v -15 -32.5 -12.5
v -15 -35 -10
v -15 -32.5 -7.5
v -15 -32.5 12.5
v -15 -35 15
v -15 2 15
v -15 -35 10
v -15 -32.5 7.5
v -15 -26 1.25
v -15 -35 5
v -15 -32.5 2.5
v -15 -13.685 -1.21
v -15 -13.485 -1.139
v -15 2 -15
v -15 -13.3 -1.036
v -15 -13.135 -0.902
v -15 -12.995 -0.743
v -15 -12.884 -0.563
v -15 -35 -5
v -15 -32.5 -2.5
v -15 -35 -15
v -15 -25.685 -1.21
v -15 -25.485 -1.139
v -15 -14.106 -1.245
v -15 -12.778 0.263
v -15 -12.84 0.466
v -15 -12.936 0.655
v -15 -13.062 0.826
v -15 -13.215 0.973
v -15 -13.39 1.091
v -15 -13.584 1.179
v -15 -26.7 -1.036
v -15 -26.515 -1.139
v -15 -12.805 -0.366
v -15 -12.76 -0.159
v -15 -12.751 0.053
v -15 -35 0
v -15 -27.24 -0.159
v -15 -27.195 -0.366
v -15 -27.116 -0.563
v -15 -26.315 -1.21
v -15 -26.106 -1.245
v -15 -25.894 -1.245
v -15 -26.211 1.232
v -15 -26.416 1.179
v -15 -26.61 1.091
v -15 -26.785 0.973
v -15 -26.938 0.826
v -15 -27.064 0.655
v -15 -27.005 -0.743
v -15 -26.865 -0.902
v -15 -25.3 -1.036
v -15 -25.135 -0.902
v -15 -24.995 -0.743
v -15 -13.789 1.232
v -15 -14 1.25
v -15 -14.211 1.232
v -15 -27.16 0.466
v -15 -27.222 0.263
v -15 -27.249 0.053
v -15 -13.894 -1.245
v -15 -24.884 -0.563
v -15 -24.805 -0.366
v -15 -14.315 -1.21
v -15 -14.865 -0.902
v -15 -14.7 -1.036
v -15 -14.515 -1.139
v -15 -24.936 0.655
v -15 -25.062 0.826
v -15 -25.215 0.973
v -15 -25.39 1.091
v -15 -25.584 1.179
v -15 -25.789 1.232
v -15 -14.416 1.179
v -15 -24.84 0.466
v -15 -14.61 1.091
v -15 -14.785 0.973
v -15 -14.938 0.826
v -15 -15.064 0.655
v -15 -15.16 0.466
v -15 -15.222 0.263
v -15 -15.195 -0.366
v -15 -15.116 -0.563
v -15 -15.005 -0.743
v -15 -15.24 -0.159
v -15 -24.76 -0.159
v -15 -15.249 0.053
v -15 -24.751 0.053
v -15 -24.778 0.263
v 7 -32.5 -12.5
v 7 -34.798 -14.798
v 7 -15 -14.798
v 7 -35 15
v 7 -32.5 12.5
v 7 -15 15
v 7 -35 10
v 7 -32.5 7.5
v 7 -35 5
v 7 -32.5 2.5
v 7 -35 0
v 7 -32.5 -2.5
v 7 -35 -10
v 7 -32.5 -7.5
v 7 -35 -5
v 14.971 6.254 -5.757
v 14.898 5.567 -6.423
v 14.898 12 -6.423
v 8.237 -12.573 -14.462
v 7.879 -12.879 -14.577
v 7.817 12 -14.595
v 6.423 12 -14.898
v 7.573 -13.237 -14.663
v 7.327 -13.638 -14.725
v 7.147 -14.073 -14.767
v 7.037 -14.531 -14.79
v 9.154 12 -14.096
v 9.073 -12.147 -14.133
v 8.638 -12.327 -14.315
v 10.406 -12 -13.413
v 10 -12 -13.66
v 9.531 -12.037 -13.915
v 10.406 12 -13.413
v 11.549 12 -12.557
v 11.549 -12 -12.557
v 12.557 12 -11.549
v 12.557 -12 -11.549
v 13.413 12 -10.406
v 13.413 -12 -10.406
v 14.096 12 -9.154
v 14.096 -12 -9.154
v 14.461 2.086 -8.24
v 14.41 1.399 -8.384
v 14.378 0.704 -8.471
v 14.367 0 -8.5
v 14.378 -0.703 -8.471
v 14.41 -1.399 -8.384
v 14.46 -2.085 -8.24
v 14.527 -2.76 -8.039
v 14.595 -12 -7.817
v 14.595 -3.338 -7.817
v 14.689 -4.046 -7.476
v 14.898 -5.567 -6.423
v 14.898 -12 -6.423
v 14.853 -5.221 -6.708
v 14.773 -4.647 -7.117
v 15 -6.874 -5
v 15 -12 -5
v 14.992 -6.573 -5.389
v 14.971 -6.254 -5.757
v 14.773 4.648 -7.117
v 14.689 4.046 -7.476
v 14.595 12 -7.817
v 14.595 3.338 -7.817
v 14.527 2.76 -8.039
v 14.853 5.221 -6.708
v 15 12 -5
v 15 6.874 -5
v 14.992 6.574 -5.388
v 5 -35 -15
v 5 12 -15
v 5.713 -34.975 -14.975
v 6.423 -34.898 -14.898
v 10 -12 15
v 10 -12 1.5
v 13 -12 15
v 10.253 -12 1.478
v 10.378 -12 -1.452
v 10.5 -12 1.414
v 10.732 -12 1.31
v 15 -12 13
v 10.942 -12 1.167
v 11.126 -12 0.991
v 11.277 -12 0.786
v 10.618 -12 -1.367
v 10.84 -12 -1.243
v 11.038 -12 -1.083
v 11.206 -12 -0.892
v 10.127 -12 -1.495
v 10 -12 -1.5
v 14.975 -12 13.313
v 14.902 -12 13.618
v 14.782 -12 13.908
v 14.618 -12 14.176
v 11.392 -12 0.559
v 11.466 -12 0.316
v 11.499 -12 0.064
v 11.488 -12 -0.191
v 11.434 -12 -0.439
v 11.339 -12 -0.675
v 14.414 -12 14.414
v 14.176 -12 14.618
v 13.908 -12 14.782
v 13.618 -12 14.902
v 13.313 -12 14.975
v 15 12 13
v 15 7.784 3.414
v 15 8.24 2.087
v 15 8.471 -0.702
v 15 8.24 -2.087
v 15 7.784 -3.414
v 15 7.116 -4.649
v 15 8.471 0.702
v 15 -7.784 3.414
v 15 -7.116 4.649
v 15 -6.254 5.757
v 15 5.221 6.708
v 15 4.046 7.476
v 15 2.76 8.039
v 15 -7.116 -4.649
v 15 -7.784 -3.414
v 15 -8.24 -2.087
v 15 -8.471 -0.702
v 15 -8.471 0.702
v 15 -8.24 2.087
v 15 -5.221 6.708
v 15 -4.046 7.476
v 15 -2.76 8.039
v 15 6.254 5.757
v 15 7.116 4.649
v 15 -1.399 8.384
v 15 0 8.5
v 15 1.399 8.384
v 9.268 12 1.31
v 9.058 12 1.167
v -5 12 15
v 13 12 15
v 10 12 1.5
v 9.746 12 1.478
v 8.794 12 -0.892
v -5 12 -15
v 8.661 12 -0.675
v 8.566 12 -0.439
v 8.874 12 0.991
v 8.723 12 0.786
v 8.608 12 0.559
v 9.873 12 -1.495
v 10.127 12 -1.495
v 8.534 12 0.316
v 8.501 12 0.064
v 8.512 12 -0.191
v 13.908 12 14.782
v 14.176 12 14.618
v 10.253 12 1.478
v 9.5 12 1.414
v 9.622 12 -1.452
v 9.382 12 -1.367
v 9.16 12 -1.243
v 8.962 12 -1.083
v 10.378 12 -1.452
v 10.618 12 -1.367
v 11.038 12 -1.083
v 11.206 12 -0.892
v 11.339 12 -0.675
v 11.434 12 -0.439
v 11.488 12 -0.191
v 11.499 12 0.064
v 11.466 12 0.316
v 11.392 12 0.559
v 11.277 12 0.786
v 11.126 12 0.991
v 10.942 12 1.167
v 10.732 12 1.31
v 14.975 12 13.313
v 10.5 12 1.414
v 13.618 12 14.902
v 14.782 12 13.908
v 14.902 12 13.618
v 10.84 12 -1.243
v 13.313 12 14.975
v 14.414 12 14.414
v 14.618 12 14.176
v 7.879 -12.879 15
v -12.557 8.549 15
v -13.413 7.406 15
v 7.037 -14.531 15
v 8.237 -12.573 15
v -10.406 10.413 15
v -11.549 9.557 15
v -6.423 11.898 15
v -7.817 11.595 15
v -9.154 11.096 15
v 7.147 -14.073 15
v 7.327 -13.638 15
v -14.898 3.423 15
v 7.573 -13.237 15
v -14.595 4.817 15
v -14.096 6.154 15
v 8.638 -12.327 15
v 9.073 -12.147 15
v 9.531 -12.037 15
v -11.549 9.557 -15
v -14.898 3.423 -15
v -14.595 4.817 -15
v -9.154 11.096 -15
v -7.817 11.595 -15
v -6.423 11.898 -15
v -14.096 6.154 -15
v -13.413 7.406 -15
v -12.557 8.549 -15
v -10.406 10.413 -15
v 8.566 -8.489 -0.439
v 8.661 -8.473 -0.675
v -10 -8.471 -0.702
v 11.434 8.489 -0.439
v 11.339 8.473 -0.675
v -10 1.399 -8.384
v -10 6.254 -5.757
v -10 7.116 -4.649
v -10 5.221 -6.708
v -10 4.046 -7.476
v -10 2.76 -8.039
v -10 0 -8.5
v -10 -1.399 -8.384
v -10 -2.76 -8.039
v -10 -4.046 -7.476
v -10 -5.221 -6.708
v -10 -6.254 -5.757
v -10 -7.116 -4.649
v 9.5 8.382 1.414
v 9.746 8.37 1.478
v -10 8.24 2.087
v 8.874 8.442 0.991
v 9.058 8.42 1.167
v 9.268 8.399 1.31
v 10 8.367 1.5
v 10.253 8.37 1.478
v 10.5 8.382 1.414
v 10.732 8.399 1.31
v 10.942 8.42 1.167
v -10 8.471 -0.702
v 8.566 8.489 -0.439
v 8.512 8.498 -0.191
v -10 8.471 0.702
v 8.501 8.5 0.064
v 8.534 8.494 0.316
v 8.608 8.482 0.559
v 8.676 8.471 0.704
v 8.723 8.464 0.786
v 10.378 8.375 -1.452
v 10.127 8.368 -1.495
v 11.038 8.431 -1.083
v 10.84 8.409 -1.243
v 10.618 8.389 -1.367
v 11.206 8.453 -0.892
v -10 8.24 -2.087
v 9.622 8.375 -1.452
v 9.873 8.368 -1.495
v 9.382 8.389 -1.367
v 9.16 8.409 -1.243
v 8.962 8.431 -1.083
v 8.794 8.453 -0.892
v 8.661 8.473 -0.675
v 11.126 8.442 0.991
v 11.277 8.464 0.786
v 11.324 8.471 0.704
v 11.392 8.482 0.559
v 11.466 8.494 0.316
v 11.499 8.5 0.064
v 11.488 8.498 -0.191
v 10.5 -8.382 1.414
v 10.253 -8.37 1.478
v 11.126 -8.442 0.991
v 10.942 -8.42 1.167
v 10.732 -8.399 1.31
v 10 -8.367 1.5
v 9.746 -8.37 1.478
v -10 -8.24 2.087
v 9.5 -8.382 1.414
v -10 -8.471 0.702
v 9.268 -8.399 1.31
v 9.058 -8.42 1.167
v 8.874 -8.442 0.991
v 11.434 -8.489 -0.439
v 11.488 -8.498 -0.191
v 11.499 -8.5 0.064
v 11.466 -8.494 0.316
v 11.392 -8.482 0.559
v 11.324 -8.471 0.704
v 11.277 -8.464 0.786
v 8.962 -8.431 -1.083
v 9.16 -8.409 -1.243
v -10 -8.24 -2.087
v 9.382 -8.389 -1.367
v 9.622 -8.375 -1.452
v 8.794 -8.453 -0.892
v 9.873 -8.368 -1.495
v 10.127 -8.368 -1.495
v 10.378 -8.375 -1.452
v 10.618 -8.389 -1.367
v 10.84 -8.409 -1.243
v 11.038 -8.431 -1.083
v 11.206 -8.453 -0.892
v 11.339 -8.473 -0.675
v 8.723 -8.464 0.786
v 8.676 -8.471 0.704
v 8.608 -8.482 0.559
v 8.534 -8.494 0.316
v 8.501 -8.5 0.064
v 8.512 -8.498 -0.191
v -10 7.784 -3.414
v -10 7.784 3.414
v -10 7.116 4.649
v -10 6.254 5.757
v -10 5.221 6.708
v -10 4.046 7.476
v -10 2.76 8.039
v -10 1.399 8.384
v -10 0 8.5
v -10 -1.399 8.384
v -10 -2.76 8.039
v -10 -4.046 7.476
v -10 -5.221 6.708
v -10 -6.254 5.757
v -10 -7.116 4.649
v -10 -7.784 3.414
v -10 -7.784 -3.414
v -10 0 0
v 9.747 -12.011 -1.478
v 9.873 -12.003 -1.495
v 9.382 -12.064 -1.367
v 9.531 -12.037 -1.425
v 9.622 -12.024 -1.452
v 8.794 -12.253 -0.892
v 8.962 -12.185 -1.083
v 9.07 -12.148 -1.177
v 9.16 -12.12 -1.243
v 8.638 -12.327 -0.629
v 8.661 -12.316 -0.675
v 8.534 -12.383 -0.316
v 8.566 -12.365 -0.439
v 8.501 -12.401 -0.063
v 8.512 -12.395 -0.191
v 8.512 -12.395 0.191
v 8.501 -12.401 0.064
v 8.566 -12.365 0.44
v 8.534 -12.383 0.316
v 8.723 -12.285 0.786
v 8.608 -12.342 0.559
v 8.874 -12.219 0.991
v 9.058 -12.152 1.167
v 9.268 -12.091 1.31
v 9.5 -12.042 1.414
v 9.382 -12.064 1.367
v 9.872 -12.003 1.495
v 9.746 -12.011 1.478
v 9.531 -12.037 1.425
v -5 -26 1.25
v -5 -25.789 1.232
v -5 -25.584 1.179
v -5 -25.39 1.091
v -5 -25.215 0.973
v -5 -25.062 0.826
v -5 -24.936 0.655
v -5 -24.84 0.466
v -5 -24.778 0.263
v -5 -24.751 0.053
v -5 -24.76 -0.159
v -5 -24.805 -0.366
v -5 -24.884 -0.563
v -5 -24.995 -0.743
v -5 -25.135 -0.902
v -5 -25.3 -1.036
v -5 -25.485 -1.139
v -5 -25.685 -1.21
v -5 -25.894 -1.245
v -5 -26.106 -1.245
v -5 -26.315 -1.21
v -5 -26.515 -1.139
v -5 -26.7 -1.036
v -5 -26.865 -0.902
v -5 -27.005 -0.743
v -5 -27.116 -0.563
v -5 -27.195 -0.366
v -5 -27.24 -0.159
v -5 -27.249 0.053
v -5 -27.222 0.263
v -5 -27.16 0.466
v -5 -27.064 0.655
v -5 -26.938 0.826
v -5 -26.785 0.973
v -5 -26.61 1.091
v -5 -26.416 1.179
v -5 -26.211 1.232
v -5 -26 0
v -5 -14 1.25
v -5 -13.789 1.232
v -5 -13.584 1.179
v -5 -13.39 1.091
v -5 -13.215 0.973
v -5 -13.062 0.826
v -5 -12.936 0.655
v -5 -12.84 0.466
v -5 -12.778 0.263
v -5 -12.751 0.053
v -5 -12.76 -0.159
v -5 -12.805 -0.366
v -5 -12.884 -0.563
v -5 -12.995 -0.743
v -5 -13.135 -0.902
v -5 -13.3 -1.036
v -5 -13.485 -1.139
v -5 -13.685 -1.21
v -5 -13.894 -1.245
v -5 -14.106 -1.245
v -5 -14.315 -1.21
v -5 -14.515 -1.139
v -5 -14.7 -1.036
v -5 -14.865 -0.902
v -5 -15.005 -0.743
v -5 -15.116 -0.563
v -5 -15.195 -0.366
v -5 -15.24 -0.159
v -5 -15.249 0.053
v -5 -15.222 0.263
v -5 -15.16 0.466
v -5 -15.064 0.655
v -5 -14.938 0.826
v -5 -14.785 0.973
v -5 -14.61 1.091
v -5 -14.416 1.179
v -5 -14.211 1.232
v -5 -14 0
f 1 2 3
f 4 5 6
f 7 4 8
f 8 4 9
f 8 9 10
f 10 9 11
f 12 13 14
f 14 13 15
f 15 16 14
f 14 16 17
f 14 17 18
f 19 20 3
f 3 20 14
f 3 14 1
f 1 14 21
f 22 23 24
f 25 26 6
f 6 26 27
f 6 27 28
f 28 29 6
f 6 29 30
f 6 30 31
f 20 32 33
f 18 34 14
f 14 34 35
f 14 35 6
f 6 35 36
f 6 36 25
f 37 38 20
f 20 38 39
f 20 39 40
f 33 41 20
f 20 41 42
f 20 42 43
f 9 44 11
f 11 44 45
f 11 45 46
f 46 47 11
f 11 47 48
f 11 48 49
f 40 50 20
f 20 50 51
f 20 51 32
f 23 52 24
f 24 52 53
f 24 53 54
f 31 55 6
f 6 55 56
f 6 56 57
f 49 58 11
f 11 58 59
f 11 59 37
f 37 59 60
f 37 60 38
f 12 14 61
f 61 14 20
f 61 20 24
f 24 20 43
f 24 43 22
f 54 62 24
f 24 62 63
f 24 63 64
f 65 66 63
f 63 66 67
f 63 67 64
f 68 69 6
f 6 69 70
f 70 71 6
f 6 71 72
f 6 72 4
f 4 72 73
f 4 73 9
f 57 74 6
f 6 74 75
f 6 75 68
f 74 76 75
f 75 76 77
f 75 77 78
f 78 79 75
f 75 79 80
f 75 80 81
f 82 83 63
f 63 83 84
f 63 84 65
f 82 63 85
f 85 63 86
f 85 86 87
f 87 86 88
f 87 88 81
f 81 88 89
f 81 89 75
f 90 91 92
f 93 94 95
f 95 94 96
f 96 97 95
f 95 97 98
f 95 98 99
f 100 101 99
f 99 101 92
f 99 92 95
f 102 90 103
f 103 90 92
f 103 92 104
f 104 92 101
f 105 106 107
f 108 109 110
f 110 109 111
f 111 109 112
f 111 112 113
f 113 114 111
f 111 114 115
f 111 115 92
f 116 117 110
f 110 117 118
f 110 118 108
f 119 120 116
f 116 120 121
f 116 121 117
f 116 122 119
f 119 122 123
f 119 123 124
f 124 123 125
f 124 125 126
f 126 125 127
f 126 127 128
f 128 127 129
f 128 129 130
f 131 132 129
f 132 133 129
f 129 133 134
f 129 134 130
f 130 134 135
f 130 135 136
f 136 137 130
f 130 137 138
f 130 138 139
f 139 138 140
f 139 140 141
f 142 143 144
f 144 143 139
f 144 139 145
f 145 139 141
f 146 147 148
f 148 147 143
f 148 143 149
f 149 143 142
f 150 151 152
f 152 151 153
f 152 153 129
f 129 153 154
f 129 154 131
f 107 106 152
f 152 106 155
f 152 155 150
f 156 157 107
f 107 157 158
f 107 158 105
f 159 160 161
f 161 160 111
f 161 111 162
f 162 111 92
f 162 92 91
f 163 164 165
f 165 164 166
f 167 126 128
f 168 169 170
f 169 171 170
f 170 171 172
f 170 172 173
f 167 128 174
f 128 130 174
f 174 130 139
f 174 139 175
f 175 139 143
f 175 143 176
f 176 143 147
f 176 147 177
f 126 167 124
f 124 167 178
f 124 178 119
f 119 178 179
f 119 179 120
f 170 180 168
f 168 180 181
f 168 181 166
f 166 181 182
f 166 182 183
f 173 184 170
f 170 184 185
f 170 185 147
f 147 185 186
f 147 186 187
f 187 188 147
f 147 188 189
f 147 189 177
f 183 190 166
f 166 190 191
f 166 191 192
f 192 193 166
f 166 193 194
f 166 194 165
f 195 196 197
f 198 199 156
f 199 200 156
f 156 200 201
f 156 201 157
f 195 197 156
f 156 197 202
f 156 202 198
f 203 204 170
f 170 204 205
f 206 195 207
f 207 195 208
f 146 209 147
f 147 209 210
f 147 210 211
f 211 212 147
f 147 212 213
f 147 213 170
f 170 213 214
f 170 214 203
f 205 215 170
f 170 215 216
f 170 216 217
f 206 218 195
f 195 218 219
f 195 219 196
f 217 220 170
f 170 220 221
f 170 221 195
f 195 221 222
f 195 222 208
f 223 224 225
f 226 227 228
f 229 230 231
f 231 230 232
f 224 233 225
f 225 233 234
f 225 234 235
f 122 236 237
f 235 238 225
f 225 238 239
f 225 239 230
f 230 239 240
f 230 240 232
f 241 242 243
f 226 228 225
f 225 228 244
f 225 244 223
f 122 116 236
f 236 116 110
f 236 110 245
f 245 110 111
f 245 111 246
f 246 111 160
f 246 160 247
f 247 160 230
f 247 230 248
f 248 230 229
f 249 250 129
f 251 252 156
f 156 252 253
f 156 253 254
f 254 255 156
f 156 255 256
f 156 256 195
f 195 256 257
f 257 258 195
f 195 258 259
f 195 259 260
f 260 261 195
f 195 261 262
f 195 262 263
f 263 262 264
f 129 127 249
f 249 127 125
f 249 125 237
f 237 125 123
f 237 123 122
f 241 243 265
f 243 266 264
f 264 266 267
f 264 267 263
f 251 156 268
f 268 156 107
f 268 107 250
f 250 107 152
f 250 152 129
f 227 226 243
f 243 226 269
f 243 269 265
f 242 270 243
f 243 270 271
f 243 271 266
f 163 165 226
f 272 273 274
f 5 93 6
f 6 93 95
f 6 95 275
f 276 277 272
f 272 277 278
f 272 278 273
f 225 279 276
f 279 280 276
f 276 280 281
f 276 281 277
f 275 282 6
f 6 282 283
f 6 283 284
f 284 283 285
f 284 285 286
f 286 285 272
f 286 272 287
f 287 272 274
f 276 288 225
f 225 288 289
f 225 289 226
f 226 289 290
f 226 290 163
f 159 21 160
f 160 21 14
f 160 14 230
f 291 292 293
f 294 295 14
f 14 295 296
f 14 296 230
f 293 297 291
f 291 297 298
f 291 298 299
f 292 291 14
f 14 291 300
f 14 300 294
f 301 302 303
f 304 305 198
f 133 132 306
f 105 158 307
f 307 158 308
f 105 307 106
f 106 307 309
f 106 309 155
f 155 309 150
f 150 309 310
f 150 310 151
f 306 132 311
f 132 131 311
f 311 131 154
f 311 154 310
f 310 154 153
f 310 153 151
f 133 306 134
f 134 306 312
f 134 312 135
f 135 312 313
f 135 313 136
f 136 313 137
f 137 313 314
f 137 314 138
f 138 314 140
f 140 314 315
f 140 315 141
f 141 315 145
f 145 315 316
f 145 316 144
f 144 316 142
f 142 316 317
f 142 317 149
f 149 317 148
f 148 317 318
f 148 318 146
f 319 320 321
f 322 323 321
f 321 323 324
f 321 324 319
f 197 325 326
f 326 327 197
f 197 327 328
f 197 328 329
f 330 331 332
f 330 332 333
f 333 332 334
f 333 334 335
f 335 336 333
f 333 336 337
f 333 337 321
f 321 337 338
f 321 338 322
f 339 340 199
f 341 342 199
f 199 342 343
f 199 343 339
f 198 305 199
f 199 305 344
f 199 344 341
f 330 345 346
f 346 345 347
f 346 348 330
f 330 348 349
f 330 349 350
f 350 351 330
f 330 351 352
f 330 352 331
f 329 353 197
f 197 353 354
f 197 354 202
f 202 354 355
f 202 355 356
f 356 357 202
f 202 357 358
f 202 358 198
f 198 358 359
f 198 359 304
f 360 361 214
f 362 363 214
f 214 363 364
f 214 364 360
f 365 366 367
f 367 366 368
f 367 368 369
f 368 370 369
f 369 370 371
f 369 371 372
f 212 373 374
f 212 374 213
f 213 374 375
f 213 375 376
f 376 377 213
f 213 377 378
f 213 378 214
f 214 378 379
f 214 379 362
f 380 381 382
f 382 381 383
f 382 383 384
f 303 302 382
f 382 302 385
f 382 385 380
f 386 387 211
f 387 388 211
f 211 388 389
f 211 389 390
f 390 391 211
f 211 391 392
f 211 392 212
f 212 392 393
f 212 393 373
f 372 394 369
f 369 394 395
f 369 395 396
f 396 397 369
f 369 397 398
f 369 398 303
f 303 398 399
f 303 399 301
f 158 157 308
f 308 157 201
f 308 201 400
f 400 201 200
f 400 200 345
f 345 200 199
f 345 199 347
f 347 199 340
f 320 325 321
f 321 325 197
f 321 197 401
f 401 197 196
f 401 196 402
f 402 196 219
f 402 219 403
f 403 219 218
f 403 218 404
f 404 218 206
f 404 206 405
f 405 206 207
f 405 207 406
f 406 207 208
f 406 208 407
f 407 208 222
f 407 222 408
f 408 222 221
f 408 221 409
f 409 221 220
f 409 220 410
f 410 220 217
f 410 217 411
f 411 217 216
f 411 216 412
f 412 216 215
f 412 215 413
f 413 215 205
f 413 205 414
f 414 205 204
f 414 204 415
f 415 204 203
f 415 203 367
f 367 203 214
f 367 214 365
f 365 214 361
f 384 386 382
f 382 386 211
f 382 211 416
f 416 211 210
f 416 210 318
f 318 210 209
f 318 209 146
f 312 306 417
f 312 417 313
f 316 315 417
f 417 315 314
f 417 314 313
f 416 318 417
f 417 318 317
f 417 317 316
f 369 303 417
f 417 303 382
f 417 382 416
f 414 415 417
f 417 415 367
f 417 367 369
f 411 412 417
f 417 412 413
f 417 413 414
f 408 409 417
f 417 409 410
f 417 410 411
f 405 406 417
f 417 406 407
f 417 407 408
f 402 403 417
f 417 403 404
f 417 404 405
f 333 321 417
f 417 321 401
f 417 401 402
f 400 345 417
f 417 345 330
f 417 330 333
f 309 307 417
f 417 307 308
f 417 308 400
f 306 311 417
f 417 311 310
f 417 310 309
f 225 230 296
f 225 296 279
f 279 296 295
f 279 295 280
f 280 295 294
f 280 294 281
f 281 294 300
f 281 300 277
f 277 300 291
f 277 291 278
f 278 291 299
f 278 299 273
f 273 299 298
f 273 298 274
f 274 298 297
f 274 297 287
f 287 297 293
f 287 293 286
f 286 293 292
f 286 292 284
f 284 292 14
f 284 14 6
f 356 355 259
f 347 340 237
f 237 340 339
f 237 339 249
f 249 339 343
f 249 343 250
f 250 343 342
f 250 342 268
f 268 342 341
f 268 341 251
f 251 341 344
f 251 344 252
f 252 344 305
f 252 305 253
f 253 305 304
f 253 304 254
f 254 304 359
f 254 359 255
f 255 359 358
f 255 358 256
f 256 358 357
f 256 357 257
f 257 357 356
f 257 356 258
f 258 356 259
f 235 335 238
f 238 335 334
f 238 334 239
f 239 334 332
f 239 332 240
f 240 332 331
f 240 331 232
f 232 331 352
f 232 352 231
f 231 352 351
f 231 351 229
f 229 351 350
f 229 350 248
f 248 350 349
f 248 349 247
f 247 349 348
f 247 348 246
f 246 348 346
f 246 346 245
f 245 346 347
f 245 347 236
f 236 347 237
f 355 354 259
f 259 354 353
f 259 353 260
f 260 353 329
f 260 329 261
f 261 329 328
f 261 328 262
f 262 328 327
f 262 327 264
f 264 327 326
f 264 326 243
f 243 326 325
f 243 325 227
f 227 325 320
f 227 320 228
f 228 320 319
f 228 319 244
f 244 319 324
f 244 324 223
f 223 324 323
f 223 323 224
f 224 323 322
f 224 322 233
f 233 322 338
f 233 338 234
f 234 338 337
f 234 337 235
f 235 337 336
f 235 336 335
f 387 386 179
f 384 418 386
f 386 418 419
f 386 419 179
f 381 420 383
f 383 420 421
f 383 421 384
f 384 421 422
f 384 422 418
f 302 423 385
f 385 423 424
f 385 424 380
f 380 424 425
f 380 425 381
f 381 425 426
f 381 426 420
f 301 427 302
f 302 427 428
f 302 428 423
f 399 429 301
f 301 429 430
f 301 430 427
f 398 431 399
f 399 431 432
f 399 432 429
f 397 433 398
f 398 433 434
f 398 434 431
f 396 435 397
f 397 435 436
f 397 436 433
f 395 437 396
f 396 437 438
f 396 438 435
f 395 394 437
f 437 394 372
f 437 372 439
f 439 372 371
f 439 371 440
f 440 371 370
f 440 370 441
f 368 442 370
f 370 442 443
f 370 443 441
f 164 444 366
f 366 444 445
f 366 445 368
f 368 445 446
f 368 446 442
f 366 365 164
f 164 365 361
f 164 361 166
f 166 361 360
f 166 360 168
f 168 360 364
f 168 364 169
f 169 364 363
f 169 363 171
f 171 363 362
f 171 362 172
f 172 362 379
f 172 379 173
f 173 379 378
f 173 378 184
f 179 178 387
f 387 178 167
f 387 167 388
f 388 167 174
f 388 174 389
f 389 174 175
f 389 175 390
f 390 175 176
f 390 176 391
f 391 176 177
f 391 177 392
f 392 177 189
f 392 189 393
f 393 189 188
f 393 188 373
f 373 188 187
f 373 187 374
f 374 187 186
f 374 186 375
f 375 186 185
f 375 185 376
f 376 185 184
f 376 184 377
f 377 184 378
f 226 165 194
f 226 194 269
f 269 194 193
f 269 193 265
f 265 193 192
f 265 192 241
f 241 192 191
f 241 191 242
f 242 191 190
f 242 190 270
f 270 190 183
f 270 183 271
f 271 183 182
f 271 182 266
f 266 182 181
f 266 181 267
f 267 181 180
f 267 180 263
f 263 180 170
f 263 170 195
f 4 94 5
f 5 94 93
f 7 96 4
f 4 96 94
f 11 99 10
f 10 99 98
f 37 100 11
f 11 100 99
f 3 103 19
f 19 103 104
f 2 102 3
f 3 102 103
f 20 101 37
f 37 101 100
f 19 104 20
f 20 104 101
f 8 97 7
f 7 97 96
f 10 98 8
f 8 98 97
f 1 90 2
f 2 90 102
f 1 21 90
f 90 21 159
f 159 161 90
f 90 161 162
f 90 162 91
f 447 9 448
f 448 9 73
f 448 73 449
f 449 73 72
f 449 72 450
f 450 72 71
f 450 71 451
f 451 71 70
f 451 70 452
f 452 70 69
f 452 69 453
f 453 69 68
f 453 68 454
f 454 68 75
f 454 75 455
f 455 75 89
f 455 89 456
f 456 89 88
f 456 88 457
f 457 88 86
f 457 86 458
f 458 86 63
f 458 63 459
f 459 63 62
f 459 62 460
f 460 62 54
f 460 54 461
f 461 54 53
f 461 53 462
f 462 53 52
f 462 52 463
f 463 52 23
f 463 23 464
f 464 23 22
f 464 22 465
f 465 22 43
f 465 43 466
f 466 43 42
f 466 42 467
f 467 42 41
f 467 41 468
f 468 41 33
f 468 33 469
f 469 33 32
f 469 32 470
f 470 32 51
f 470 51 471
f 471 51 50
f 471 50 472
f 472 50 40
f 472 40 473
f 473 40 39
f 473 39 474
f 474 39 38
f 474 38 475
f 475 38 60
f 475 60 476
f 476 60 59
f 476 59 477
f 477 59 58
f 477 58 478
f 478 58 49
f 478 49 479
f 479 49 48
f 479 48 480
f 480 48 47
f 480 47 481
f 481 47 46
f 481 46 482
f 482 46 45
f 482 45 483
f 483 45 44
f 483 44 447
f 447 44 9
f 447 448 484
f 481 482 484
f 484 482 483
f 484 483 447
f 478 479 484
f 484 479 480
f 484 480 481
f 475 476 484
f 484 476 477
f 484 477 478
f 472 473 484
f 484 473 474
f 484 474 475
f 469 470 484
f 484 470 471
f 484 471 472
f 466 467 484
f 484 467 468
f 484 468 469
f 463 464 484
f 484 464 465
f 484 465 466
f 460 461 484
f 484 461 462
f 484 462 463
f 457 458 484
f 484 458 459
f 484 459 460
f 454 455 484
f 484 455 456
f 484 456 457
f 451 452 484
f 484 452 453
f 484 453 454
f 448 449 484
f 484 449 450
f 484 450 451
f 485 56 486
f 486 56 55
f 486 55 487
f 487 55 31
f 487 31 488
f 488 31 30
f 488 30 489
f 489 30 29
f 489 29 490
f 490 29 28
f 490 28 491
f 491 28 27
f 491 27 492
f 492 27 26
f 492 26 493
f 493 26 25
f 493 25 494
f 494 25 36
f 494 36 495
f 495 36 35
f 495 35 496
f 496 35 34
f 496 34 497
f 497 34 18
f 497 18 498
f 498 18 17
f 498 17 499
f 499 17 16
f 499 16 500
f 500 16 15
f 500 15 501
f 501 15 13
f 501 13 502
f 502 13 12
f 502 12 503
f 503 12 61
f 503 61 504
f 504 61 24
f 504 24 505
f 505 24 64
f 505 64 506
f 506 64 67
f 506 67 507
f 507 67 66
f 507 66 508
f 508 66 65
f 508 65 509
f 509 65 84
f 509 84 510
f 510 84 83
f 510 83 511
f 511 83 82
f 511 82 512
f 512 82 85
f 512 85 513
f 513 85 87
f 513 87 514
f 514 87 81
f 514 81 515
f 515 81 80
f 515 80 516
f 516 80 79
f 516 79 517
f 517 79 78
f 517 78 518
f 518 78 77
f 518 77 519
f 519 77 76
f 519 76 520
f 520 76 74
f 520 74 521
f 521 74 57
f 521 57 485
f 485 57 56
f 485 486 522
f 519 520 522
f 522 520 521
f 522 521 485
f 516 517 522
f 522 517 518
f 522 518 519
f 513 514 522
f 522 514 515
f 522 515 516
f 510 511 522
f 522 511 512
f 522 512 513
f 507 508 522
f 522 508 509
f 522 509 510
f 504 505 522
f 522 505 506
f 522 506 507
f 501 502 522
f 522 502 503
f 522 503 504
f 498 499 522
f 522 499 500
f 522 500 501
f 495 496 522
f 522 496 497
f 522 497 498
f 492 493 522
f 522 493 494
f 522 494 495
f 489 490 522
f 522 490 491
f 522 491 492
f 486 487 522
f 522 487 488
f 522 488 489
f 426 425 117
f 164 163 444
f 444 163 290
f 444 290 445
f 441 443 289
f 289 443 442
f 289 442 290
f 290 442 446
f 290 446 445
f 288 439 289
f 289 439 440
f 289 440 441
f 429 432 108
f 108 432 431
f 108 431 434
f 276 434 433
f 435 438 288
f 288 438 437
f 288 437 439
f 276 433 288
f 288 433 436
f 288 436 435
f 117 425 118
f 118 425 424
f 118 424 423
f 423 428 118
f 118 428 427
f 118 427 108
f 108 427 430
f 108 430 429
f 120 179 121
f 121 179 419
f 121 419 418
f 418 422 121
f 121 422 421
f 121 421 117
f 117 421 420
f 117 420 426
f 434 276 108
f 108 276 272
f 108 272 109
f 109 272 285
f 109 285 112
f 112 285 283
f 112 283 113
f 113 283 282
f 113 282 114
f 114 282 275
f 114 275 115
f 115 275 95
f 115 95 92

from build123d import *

# Parameters (mm, degrees)
CROQUIS1_W              = 30
CROQUIS1_H              = 24
CROQUIS1_W_2            = 22
CROQUIS1_H_2            = 23
SALIENTE_EXTRUIR1_DEPTH = 15
CROQUIS2_R              = 8.5
CORTAR_EXTRUIR1_DEPTH   = 25
REDONDEO1_R             = 10
REDONDEO2_R             = 10
CROQUIS5_R              = 1.5
CORTAR_EXTRUIR3_DEPTH   = 30
REDONDEO3_R             = 2
CORTAR_EXTRUIR4_DEPTH   = 25
CROQUIS7_R              = 1.25
CORTAR_EXTRUIR5_DEPTH   = 10
REDONDEO4_START         = 1.500000102
REDONDEO4_DEPTH         = 13.499999898
REDONDEO4_START_2       = -11.985627603
REDONDEO4_2_DEPTH       = 10.485627421
REDONDEO4_START_3       = -14.797959071
REDONDEO4_3_DEPTH       = 16.297959173
REDONDEO4_START_4       = -16
REDONDEO4_4_DEPTH       = 4


with BuildPart() as part:
    # Croquis1 → Saliente-Extruir1 (new, symmetric)
    with BuildSketch(Plane.XY):
        Rectangle(CROQUIS1_W, CROQUIS1_H)
        with Locations((-4, -23.5)):
            Rectangle(CROQUIS1_W_2, CROQUIS1_H_2)
    extrude(amount=SALIENTE_EXTRUIR1_DEPTH, both=True)

    # Croquis2 → Cortar-Extruir1 (cut)
    with BuildSketch(Plane(origin=(15, 0, 0), x_dir=(0, 0, -1), z_dir=(1, 0, 0))):
        Circle(CROQUIS2_R)
    extrude(amount=-CORTAR_EXTRUIR1_DEPTH, mode=Mode.SUBTRACT)

    # Redondeo1
    redondeo1_edges = [part.edges().sort_by_distance(p)[0] for p in [
        (-15, 12, 0),
    ]]
    fillet(redondeo1_edges, radius=REDONDEO1_R)

    # Redondeo2
    # the kernel refuses this fillet: 10 mm, written as the material it takes off along each edge
    with BuildSketch(Plane(origin=(15, -37, -15), x_dir=(0, 0, 1), z_dir=(0, 1, 0))) as redondeo2_piece_1:
        with BuildLine():
            CenterArc((REDONDEO2_R, -REDONDEO2_R), REDONDEO2_R, 90, 90)
            Line((0, -REDONDEO2_R), (0, 0))
            Line((0, 0), (REDONDEO2_R, 0))
        make_face()
    extrude(amount=74, mode=Mode.SUBTRACT)

    # Croquis5 → Cortar-Extruir3 (cut)
    with BuildSketch(Plane(origin=(0, 12, 0), x_dir=(1, 0, 0), z_dir=(0, 1, 0))):
        with Locations(Location((10, 0, 0), (0, 0, 270))):
            Circle(CROQUIS5_R)
    extrude(amount=-CORTAR_EXTRUIR3_DEPTH, mode=Mode.SUBTRACT)

    # Redondeo3
    redondeo3_edges = [part.edges().sort_by_distance(p)[0] for p in [
        (15, 0, 15),
    ]]
    fillet(redondeo3_edges, radius=REDONDEO3_R)

    # Croquis6 → Cortar-Extruir4 (cut)
    with BuildSketch(Plane.ZY.offset(15)):
        Polygon((12.5, -32.5), (10, -35), (15, -35), align=None)
        Polygon((7.5, -32.5), (5, -35), (10, -35), align=None)
        Polygon((2.5, -32.5), (0, -35), (5, -35), align=None)
        Polygon((-2.5, -32.5), (-5, -35), (0, -35), align=None)
        Polygon((-7.5, -32.5), (-10, -35), (-5, -35), align=None)
        Polygon((-12.5, -32.5), (-15, -35), (-10, -35), align=None)
    extrude(amount=-CORTAR_EXTRUIR4_DEPTH, mode=Mode.SUBTRACT)

    # Croquis7 → Cortar-Extruir5 (cut)
    with BuildSketch(Plane.ZY.offset(15)):
        with Locations((0, -14)):
            Circle(CROQUIS7_R)
        with Locations((0, -26)):
            Circle(CROQUIS7_R)
    extrude(amount=-CORTAR_EXTRUIR5_DEPTH, mode=Mode.SUBTRACT)

    # Redondeo4: read off the stored shape, not the designer's step
    # Redondeo4 outline → Redondeo4 (add)
    with BuildSketch(Plane.XY.offset(REDONDEO4_START)):
        with BuildLine():
            Line((7, -12), (7, -15))
            ThreePointArc((7, -15), (7.878679656, -12.878679656), (10, -12))
            Line((10, -12), (7, -12))
        make_face()
    extrude(amount=REDONDEO4_DEPTH)

    # Redondeo4 2 outline → Redondeo4 2 (add)
    with BuildSketch(Plane.XY.offset(REDONDEO4_START_2)):
        with BuildLine():
            Line((7, -12), (7, -15))
            ThreePointArc((7, -15), (7.878679656, -12.878679656), (10, -12))
            Line((10, -12), (7, -12))
        make_face()
    extrude(amount=REDONDEO4_2_DEPTH)

    # Redondeo4 3 outline → Redondeo4 3 (add)
    with BuildSketch(Plane.XY.offset(REDONDEO4_START_3)):
        with BuildLine():
            Line((7, -12), (7, -15))
            ThreePointArc((7, -15), (7.878679656, -12.878679656), (10, -12))
            Line((10, -12), (7, -12))
        make_face()
    extrude(amount=REDONDEO4_3_DEPTH)

    # Redondeo4 4 outline → Redondeo4 4 (cut)
    with BuildSketch(Plane(origin=(0, 0, 0), x_dir=(1, 0, 0), z_dir=(0, 1, 0)).offset(REDONDEO4_START_4)):
        with BuildLine():
            ThreePointArc((7, 14.797958971), (8.545926272, 14.350208921), (10, 13.660254038))
            Line((10, 13.660254038), (10, 14.797959071))
            Line((10, 14.797959071), (7, 14.797958971))
        make_face()
        with BuildLine():
            Line((10, -1.5), (10, 1.5))
            ThreePointArc((10, 1.5), (8.5, 0), (10, -1.5))
        make_face()
    extrude(amount=REDONDEO4_4_DEPTH, mode=Mode.SUBTRACT)


solid = part.part
